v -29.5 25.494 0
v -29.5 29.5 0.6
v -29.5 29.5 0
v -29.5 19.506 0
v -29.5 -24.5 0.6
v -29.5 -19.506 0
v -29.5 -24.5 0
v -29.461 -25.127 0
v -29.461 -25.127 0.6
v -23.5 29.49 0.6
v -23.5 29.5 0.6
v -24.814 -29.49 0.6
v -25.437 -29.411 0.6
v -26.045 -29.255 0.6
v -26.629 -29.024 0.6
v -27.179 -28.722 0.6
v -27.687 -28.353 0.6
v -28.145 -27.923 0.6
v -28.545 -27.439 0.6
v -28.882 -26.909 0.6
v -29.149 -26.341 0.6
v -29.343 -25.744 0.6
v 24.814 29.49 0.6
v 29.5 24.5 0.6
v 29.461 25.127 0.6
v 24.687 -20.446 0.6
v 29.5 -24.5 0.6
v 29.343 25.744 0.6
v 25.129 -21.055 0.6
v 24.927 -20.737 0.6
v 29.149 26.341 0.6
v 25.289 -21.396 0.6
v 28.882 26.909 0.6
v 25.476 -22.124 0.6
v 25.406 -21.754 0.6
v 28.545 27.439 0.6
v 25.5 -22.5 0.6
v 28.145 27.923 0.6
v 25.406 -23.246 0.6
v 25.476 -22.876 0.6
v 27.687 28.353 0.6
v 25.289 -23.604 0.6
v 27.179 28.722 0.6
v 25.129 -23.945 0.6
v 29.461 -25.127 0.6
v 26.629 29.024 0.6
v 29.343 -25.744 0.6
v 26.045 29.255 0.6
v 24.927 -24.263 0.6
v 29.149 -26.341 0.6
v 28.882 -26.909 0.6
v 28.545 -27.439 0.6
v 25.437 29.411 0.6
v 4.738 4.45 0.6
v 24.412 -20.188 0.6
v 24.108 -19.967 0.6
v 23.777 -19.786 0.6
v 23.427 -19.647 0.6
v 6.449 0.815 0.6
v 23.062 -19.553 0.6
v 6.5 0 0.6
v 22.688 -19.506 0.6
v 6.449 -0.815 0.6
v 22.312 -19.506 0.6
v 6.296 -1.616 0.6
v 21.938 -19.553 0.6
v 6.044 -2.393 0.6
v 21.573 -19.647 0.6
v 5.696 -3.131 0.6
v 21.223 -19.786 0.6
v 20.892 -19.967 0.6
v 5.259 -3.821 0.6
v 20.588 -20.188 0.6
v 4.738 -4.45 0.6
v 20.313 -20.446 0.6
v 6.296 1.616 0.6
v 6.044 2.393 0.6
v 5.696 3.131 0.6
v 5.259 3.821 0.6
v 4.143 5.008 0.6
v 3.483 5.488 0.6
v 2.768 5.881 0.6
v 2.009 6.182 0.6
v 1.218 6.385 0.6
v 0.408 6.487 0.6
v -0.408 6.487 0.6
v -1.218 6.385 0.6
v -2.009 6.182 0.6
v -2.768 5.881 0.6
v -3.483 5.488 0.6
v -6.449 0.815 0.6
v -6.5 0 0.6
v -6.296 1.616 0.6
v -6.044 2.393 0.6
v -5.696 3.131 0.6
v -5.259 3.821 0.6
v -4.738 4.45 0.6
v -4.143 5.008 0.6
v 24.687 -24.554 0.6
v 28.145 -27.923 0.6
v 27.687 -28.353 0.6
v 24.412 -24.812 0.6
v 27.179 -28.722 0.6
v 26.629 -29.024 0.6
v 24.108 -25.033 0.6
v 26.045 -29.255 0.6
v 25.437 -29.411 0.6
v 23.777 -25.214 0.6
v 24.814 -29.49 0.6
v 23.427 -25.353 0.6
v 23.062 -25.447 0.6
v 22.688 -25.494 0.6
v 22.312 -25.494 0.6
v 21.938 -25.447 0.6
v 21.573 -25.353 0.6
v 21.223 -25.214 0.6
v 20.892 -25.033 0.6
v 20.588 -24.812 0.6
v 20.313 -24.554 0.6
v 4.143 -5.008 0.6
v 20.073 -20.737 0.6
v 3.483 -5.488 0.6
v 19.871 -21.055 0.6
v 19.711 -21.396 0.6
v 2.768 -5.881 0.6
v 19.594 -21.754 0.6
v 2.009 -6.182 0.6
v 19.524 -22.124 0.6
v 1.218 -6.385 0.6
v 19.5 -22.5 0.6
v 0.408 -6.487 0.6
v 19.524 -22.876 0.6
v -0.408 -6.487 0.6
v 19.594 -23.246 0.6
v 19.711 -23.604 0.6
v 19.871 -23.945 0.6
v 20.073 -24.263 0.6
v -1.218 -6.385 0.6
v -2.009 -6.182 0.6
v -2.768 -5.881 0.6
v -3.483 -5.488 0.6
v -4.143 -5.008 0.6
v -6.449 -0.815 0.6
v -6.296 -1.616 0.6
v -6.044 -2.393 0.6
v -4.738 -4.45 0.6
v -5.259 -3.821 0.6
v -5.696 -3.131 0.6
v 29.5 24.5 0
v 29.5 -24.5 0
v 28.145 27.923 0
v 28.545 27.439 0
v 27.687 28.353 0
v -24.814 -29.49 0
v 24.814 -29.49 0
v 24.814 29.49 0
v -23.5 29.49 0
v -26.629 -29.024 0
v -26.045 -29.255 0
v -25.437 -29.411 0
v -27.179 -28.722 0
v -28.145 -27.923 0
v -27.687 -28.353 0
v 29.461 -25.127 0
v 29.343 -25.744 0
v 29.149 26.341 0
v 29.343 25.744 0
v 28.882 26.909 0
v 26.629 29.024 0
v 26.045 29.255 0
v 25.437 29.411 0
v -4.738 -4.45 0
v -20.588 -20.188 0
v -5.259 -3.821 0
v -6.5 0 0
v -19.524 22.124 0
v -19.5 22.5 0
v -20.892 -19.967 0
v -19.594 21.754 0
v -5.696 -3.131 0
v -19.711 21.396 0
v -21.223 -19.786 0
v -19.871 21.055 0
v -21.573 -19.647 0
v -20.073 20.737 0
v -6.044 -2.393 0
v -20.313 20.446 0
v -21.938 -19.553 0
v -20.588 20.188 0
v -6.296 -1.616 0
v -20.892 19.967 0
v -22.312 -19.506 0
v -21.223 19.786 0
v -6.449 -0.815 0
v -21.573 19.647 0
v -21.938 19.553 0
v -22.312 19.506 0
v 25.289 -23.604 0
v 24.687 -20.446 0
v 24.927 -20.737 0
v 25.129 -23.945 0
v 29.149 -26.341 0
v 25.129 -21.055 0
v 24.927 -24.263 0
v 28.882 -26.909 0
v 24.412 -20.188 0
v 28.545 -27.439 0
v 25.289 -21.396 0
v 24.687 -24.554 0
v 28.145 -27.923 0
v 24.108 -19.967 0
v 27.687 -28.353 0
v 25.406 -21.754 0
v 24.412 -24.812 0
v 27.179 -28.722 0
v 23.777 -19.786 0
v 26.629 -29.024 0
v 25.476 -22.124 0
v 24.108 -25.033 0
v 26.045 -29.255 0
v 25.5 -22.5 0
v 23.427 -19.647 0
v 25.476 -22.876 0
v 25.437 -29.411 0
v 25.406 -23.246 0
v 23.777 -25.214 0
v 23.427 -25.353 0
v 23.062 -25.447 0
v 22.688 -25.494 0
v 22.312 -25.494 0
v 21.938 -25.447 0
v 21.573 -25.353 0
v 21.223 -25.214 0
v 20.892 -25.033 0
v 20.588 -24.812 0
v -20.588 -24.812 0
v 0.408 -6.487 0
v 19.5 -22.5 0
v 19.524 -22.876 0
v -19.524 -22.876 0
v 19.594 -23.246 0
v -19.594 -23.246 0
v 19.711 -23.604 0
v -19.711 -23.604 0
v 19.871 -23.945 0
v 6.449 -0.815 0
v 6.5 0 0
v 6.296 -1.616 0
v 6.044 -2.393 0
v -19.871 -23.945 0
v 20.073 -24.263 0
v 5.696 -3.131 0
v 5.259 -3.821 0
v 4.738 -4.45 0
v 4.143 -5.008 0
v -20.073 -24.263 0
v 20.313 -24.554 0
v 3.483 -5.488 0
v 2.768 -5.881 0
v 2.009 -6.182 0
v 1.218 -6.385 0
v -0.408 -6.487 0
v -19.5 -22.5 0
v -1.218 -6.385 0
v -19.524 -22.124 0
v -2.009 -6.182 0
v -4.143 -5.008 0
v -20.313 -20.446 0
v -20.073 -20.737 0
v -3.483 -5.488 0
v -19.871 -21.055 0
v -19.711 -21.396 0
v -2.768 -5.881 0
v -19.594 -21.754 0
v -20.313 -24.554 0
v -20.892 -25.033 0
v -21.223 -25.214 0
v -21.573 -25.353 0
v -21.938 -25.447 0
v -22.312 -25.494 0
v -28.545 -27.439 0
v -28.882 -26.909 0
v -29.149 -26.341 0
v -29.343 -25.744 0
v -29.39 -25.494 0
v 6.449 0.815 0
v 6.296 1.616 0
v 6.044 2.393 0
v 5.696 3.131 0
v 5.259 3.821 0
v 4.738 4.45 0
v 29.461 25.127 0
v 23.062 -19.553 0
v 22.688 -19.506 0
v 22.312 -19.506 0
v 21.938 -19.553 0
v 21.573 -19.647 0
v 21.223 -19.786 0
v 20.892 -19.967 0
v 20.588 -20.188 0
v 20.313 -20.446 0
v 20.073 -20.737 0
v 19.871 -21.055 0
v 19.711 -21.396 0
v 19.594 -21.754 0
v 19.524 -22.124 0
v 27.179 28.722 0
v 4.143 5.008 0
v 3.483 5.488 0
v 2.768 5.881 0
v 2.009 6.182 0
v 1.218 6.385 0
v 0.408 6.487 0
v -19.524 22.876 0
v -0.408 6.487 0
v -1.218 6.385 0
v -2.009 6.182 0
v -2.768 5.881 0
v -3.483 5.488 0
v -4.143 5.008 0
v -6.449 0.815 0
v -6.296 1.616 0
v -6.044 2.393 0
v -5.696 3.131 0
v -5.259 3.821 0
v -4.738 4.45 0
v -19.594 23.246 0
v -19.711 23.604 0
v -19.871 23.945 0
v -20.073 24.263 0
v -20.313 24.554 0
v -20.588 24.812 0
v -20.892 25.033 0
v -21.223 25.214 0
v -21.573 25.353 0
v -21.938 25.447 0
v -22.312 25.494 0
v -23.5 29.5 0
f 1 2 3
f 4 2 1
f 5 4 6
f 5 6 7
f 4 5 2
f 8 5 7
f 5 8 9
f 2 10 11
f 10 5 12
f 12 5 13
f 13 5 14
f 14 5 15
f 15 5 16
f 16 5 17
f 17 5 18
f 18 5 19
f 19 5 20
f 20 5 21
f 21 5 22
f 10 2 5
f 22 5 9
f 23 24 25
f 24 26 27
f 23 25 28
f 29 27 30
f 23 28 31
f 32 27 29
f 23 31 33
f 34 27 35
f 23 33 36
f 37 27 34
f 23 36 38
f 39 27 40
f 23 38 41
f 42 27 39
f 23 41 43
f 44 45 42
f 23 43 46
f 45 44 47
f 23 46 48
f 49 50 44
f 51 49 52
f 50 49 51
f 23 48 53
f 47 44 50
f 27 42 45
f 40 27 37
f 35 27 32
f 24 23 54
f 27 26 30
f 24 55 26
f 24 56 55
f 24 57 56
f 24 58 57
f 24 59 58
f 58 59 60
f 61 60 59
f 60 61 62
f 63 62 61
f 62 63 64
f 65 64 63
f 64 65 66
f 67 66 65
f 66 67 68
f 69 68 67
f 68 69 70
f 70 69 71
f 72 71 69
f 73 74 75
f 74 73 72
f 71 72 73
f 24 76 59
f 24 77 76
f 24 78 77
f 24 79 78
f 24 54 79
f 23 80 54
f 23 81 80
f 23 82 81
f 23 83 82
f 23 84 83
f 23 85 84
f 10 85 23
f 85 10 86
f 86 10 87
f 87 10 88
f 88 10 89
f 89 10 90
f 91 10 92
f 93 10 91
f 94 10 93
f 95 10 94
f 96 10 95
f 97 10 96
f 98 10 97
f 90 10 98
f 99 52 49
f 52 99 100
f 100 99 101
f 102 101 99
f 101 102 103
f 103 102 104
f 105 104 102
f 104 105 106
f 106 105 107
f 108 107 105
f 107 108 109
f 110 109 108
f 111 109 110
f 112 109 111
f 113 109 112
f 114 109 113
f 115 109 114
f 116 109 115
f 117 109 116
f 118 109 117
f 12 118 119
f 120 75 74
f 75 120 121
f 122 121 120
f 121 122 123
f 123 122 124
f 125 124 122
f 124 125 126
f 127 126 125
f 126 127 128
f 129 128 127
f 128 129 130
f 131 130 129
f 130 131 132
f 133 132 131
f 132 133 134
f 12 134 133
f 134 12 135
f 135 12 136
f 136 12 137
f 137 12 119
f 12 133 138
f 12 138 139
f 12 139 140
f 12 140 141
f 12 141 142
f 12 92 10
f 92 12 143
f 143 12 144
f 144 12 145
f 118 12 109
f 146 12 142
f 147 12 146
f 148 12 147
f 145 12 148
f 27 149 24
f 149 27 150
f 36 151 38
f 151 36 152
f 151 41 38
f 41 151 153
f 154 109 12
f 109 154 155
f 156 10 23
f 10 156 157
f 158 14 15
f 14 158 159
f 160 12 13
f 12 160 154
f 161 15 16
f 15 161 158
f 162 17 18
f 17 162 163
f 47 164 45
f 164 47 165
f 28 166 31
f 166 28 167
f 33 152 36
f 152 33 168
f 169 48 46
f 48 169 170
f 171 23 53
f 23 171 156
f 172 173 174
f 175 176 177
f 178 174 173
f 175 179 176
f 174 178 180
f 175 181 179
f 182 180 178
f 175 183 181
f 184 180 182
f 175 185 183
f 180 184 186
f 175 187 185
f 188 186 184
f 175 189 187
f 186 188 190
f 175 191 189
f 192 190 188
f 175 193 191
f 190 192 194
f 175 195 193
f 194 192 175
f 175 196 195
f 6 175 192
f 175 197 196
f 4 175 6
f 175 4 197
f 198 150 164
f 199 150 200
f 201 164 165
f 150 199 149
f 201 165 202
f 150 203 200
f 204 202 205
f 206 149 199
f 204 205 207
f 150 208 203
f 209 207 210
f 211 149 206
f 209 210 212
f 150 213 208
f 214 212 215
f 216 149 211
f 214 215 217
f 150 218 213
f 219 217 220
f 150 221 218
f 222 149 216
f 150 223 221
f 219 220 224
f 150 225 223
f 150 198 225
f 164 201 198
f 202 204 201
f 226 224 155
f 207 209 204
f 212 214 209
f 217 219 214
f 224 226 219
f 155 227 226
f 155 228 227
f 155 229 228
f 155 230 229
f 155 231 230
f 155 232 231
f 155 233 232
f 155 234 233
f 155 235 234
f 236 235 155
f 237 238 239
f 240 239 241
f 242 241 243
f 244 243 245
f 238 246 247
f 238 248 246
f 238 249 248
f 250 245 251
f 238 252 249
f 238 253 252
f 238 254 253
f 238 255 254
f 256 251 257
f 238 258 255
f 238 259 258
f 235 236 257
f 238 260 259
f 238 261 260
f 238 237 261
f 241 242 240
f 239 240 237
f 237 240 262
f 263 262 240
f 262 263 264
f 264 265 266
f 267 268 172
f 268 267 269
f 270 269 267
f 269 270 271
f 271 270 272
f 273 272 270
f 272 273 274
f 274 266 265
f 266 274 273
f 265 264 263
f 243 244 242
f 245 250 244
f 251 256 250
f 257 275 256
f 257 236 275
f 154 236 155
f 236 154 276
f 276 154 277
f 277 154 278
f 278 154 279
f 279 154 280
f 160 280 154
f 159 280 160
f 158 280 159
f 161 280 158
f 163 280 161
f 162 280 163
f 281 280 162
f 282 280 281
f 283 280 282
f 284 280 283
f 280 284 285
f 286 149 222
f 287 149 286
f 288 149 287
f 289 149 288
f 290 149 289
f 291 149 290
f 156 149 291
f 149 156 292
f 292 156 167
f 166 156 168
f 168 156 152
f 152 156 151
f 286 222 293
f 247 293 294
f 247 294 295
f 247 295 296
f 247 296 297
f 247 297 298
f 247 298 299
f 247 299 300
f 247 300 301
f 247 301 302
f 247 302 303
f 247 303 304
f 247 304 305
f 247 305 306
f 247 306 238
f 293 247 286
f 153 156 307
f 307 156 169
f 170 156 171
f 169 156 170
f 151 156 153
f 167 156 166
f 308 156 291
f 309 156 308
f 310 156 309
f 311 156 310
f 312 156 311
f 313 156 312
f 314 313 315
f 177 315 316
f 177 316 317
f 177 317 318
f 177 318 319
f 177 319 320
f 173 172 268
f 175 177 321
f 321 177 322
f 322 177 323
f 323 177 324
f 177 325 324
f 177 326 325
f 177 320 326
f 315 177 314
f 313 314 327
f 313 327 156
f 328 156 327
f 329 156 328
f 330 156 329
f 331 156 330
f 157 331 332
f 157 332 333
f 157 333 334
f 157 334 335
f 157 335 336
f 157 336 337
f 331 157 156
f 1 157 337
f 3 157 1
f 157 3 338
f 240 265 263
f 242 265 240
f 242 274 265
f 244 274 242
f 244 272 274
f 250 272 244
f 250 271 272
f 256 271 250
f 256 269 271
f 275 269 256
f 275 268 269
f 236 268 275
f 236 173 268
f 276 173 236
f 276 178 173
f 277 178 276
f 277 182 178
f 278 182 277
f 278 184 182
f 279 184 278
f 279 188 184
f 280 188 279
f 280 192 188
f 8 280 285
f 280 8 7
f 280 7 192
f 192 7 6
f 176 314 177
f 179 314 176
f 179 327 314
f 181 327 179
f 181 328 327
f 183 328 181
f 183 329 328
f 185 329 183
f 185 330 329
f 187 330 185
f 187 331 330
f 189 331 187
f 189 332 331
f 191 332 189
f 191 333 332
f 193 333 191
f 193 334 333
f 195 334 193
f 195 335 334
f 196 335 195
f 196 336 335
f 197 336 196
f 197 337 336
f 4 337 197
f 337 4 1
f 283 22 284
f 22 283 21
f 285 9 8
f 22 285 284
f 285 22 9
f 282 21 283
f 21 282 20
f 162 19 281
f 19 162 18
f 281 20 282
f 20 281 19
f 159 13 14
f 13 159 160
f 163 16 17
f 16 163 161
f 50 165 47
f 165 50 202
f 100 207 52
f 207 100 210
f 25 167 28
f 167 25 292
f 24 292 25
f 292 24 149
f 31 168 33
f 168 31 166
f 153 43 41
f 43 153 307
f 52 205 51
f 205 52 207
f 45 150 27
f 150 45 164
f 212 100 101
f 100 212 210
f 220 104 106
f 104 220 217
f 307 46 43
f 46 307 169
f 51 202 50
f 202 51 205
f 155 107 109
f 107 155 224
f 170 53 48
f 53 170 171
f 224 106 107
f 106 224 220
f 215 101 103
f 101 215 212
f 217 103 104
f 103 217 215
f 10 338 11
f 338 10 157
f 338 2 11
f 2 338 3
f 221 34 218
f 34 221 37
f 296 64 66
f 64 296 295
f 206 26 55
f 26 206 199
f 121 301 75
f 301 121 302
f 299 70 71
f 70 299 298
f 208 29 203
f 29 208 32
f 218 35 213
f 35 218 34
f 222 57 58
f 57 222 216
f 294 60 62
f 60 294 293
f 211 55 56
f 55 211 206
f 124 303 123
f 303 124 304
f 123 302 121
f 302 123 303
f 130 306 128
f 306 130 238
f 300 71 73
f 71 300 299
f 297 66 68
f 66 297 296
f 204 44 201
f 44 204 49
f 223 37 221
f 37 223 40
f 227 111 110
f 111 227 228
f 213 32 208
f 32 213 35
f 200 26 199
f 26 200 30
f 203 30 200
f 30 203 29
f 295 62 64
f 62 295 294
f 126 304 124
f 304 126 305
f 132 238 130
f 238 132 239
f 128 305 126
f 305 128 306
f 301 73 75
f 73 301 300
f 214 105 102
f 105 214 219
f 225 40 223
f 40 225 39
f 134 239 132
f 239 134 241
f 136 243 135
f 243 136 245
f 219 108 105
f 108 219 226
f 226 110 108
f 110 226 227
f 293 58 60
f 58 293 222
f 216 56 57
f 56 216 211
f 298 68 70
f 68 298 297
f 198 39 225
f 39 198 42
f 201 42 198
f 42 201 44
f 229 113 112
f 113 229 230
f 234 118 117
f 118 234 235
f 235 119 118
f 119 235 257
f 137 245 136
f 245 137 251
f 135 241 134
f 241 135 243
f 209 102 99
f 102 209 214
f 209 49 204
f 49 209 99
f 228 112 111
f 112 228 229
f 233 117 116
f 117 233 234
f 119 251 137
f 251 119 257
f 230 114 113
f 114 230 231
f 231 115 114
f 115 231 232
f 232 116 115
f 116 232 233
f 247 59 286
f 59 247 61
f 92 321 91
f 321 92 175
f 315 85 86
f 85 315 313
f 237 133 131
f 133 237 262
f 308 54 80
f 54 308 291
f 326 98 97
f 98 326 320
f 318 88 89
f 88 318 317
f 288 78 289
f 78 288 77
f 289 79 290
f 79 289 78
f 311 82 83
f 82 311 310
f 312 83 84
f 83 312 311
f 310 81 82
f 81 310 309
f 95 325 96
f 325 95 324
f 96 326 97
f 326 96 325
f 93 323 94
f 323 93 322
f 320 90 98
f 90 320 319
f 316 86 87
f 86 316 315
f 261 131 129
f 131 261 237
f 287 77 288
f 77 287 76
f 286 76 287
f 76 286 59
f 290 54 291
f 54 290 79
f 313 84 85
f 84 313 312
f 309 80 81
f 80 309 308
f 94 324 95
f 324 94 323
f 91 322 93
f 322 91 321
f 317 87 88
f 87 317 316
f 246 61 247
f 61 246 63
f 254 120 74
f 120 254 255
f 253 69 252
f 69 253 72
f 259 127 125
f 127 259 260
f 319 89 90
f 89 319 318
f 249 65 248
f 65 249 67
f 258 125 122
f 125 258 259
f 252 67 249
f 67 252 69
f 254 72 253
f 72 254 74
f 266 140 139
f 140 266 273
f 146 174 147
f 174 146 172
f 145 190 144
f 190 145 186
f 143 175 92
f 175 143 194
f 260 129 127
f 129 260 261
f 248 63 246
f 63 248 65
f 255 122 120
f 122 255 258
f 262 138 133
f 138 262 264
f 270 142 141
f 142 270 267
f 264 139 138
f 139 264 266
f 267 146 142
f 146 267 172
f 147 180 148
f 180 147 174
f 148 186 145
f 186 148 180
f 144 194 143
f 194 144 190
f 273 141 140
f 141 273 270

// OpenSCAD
$fn = 50;


difference() {
	union() {
		hull() {
			translate(v = [-24.5000000000, 24.5000000000, 0]) {
				cylinder(h = 0.6000000000, r = 5);
			}
			translate(v = [24.5000000000, 24.5000000000, 0]) {
				cylinder(h = 0.6000000000, r = 5);
			}
			translate(v = [-24.5000000000, -24.5000000000, 0]) {
				cylinder(h = 0.6000000000, r = 5);
			}
			translate(v = [24.5000000000, -24.5000000000, 0]) {
				cylinder(h = 0.6000000000, r = 5);
			}
		}
		translate(v = [-29.5000000000, 23.5000000000, 0]) {
			cube(size = [6, 6, 0.6000000000]);
		}
	}
	union() {
		translate(v = [-30.0000000000, -22.5000000000, -250.0000000000]) {
			rotate(a = [0, 0, 0]) {
				difference() {
					union() {
						hull() {
							translate(v = [7.5000000000, 0, 0]) {
								cylinder(h = 250, r = 3.0000000000, r1 = 3.0000000000, r2 = 3.0000000000);
							}
							translate(v = [-7.5000000000, 0, 0]) {
								cylinder(h = 250, r = 3.0000000000, r1 = 3.0000000000, r2 = 3.0000000000);
							}
						}
					}
					union();
				}
			}
		}
		translate(v = [-30.0000000000, 22.5000000000, -250.0000000000]) {
			rotate(a = [0, 0, 0]) {
				difference() {
					union() {
						hull() {
							translate(v = [7.5000000000, 0, 0]) {
								cylinder(h = 250, r = 3.0000000000, r1 = 3.0000000000, r2 = 3.0000000000);
							}
							translate(v = [-7.5000000000, 0, 0]) {
								cylinder(h = 250, r = 3.0000000000, r1 = 3.0000000000, r2 = 3.0000000000);
							}
						}
					}
					union();
				}
			}
		}
		translate(v = [22.5000000000, -22.5000000000, 0]) {
			cylinder(h = 100, r = 3.0000000000);
		}
		cylinder(h = 0.6000000000, r = 6.5000000000);
	}
}
